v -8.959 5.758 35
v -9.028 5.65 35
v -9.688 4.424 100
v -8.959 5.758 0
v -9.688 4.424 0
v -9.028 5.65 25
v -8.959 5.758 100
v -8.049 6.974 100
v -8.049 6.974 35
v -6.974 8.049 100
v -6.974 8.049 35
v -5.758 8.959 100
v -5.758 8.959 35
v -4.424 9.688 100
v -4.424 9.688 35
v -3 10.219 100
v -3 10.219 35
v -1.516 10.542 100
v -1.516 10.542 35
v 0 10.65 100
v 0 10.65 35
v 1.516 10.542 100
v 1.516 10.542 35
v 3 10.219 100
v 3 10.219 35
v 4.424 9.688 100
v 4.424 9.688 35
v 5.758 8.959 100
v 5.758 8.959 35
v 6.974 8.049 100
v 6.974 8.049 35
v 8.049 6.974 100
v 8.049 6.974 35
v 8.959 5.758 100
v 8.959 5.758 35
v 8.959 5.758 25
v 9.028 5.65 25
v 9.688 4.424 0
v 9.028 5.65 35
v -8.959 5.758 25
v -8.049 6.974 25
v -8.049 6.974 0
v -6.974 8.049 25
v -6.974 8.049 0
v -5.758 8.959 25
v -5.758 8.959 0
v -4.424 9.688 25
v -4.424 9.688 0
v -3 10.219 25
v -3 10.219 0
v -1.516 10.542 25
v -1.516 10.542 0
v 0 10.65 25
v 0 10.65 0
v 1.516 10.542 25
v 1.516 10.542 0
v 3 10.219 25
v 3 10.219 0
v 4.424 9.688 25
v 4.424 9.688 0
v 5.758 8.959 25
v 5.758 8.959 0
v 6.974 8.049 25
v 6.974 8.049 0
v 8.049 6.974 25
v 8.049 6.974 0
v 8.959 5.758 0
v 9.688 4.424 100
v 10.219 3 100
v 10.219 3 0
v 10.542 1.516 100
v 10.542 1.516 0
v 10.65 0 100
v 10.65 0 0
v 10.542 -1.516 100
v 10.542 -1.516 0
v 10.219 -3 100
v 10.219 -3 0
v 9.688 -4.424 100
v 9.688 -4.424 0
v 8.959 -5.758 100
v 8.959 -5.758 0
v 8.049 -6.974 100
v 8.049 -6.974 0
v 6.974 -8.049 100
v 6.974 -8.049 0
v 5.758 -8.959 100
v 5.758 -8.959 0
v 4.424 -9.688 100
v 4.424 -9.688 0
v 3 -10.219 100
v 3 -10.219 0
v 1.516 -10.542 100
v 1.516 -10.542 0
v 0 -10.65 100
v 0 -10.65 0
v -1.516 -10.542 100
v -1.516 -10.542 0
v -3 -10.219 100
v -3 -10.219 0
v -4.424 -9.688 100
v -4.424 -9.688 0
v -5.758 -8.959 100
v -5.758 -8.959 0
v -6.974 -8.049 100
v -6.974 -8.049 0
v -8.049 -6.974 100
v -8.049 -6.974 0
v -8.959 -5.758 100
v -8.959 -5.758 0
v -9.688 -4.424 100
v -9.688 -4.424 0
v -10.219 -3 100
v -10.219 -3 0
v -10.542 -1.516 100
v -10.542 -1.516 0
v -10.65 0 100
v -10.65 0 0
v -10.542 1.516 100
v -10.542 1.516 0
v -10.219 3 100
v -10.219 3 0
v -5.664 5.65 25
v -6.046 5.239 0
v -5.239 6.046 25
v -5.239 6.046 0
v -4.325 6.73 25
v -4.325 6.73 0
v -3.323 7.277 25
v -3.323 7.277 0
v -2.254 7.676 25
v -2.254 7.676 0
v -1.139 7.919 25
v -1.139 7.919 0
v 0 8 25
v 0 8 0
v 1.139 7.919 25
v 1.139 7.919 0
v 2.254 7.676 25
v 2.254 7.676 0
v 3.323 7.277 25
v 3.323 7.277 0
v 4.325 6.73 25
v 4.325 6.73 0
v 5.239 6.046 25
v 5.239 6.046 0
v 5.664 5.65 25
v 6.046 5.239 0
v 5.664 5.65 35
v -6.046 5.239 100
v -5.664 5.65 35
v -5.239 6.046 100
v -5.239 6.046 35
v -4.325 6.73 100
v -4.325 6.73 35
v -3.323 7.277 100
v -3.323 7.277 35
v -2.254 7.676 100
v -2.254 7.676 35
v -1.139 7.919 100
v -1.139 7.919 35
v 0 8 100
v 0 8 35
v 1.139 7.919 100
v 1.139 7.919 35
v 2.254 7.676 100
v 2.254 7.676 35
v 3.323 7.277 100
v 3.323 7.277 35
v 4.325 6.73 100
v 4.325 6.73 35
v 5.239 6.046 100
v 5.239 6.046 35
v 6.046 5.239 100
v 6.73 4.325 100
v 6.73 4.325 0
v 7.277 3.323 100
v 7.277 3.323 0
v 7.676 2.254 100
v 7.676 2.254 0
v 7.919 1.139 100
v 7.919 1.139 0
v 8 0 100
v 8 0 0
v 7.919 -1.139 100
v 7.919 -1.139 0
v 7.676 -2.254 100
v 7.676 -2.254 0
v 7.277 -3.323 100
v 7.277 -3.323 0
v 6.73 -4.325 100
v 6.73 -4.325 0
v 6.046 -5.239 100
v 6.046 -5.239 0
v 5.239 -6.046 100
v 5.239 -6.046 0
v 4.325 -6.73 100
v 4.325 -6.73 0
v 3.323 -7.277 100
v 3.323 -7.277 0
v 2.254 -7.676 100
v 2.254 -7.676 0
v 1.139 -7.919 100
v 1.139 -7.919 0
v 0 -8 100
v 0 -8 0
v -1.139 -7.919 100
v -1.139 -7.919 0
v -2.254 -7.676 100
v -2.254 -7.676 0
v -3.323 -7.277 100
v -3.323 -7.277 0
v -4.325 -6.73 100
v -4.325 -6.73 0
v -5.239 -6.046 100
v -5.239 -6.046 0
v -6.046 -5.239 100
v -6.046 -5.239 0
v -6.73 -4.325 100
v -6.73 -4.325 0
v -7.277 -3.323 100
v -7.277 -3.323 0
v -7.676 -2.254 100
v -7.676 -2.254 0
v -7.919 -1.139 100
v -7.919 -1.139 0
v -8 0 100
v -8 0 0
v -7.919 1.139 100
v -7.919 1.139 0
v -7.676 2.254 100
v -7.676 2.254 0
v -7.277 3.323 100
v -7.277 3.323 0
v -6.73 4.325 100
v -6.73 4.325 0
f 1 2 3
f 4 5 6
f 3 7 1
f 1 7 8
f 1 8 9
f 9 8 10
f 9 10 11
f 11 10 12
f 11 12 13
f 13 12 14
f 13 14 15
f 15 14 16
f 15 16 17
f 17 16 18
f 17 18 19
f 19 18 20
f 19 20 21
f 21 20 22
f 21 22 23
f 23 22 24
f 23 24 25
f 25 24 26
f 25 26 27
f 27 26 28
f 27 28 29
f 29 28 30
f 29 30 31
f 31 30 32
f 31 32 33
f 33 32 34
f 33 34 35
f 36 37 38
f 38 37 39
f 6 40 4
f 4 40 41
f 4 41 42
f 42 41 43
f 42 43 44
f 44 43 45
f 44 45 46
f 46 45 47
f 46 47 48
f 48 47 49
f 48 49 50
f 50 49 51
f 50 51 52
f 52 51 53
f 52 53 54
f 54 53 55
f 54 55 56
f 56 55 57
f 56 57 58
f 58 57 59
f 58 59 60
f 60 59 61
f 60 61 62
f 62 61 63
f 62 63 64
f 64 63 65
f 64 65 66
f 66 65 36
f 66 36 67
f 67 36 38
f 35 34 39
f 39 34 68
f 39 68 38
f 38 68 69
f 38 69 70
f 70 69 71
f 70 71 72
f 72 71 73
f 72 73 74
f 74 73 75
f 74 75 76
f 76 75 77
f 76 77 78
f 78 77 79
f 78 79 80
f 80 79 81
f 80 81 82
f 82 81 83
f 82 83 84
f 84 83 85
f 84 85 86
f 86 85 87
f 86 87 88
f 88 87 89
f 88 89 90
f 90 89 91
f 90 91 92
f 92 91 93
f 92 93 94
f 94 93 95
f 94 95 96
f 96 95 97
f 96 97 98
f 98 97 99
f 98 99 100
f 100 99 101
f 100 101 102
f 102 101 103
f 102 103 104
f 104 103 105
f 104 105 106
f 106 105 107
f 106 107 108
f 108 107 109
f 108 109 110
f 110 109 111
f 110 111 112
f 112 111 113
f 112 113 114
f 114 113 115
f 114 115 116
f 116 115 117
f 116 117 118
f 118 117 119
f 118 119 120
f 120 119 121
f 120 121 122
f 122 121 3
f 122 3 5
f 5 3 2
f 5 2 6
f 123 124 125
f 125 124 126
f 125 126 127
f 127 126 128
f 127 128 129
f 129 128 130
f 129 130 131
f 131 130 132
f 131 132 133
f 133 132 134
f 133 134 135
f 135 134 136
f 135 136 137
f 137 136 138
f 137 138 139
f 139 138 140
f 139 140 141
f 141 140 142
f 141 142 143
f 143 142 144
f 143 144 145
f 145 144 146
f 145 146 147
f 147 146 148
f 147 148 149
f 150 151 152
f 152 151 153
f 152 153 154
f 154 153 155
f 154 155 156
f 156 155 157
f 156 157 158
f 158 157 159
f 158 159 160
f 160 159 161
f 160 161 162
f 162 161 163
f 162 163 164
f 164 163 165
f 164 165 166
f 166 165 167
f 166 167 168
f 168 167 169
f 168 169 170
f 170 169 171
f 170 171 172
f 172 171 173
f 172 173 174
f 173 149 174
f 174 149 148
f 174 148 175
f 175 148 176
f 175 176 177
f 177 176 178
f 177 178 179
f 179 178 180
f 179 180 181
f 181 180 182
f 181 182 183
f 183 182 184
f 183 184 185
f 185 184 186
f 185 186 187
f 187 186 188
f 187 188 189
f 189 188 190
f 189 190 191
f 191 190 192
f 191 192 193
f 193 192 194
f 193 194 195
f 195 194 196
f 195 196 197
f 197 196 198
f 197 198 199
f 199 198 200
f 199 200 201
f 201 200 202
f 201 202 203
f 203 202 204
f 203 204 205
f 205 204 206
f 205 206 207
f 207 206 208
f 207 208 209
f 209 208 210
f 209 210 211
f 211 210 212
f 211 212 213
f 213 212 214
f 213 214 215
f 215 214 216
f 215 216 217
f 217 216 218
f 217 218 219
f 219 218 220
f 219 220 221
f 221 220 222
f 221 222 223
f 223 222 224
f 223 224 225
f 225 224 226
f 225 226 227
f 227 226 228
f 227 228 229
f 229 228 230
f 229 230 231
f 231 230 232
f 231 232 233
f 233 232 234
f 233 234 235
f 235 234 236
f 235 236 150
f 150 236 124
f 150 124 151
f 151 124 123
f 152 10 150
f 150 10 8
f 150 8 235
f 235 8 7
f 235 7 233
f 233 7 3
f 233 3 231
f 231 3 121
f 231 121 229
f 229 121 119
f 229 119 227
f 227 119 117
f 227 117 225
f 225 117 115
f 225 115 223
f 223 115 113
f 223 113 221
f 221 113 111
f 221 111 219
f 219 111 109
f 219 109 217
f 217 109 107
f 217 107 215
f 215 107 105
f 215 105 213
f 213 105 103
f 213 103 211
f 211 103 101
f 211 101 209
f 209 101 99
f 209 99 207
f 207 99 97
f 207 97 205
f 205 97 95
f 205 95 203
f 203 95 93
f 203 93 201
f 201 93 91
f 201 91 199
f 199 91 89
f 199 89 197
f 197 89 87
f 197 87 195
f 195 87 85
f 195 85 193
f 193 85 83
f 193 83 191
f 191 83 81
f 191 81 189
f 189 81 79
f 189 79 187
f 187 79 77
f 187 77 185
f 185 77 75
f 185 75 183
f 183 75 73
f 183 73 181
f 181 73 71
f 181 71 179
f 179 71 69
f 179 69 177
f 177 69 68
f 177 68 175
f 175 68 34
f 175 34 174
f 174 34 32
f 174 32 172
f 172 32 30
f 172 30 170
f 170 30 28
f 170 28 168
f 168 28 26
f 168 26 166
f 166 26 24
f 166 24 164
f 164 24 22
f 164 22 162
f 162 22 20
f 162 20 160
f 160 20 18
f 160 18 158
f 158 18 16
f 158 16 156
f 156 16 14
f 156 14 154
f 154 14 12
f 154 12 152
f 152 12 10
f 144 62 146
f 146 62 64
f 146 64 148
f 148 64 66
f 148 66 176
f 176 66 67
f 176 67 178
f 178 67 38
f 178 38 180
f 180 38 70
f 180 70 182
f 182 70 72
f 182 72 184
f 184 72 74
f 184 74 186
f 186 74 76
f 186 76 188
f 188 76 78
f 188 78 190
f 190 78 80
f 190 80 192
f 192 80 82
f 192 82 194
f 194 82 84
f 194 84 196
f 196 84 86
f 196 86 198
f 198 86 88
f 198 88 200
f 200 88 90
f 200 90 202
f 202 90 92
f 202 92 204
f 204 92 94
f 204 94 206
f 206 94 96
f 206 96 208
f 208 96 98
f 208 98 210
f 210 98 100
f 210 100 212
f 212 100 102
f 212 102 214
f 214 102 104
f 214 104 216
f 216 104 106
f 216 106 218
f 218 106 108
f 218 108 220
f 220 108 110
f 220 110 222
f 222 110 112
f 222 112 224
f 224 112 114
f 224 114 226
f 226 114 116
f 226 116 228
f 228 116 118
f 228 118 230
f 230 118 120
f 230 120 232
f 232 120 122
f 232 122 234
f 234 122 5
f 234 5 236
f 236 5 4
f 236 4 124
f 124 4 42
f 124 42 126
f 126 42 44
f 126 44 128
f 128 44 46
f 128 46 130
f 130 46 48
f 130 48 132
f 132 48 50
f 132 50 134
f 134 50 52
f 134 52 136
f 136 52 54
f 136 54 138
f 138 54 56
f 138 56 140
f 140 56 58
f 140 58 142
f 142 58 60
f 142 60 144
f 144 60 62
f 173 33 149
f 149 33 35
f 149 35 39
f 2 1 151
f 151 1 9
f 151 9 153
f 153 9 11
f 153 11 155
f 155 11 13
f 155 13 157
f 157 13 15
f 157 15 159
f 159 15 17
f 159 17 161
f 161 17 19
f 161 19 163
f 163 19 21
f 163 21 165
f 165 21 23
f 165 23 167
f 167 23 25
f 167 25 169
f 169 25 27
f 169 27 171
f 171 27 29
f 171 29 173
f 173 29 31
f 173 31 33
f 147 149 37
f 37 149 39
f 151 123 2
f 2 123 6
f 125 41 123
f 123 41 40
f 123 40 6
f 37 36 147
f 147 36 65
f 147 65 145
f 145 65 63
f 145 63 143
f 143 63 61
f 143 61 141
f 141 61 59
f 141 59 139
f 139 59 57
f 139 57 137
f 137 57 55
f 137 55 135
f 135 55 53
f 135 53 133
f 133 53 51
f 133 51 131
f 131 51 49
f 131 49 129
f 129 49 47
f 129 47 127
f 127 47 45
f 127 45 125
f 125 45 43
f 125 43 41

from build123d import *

# Parameters (mm, degrees)
SKIZZE1_R                            = 10.65
SKIZZE1_R_2                          = 8
AUFSATZ_LINEAR_AUSTRAGEN1_DEPTH      = 100
SCHNITT_LINEAR_AUSTRAGEN1_DEPTH      = 10
SCHNITT_LINEAR_AUSTRAGEN1_DEPTH_BACK = 10
SKIZZE2_W                            = 10
SKIZZE2_H                            = 5


with BuildPart() as part:
    # Skizze1 → Aufsatz-Linear austragen1 (new body)
    with BuildSketch(Plane.XY):
        Circle(SKIZZE1_R)
        Circle(SKIZZE1_R_2, mode=Mode.SUBTRACT)
    extrude(amount=AUFSATZ_LINEAR_AUSTRAGEN1_DEPTH)

    # Skizze2 → Schnitt-Linear austragen1 (cut, two sides: drawn at the far end of the back side and taken through both)
    with BuildSketch(Plane(origin=(0, 0, 0), x_dir=(0, 0, -1), z_dir=(1, 0, 0)).offset(-SCHNITT_LINEAR_AUSTRAGEN1_DEPTH_BACK)):
        with Locations((-30, 8.15)):
            Rectangle(SKIZZE2_W, SKIZZE2_H)
    extrude(amount=SCHNITT_LINEAR_AUSTRAGEN1_DEPTH + SCHNITT_LINEAR_AUSTRAGEN1_DEPTH_BACK, mode=Mode.SUBTRACT)


solid = part.part
